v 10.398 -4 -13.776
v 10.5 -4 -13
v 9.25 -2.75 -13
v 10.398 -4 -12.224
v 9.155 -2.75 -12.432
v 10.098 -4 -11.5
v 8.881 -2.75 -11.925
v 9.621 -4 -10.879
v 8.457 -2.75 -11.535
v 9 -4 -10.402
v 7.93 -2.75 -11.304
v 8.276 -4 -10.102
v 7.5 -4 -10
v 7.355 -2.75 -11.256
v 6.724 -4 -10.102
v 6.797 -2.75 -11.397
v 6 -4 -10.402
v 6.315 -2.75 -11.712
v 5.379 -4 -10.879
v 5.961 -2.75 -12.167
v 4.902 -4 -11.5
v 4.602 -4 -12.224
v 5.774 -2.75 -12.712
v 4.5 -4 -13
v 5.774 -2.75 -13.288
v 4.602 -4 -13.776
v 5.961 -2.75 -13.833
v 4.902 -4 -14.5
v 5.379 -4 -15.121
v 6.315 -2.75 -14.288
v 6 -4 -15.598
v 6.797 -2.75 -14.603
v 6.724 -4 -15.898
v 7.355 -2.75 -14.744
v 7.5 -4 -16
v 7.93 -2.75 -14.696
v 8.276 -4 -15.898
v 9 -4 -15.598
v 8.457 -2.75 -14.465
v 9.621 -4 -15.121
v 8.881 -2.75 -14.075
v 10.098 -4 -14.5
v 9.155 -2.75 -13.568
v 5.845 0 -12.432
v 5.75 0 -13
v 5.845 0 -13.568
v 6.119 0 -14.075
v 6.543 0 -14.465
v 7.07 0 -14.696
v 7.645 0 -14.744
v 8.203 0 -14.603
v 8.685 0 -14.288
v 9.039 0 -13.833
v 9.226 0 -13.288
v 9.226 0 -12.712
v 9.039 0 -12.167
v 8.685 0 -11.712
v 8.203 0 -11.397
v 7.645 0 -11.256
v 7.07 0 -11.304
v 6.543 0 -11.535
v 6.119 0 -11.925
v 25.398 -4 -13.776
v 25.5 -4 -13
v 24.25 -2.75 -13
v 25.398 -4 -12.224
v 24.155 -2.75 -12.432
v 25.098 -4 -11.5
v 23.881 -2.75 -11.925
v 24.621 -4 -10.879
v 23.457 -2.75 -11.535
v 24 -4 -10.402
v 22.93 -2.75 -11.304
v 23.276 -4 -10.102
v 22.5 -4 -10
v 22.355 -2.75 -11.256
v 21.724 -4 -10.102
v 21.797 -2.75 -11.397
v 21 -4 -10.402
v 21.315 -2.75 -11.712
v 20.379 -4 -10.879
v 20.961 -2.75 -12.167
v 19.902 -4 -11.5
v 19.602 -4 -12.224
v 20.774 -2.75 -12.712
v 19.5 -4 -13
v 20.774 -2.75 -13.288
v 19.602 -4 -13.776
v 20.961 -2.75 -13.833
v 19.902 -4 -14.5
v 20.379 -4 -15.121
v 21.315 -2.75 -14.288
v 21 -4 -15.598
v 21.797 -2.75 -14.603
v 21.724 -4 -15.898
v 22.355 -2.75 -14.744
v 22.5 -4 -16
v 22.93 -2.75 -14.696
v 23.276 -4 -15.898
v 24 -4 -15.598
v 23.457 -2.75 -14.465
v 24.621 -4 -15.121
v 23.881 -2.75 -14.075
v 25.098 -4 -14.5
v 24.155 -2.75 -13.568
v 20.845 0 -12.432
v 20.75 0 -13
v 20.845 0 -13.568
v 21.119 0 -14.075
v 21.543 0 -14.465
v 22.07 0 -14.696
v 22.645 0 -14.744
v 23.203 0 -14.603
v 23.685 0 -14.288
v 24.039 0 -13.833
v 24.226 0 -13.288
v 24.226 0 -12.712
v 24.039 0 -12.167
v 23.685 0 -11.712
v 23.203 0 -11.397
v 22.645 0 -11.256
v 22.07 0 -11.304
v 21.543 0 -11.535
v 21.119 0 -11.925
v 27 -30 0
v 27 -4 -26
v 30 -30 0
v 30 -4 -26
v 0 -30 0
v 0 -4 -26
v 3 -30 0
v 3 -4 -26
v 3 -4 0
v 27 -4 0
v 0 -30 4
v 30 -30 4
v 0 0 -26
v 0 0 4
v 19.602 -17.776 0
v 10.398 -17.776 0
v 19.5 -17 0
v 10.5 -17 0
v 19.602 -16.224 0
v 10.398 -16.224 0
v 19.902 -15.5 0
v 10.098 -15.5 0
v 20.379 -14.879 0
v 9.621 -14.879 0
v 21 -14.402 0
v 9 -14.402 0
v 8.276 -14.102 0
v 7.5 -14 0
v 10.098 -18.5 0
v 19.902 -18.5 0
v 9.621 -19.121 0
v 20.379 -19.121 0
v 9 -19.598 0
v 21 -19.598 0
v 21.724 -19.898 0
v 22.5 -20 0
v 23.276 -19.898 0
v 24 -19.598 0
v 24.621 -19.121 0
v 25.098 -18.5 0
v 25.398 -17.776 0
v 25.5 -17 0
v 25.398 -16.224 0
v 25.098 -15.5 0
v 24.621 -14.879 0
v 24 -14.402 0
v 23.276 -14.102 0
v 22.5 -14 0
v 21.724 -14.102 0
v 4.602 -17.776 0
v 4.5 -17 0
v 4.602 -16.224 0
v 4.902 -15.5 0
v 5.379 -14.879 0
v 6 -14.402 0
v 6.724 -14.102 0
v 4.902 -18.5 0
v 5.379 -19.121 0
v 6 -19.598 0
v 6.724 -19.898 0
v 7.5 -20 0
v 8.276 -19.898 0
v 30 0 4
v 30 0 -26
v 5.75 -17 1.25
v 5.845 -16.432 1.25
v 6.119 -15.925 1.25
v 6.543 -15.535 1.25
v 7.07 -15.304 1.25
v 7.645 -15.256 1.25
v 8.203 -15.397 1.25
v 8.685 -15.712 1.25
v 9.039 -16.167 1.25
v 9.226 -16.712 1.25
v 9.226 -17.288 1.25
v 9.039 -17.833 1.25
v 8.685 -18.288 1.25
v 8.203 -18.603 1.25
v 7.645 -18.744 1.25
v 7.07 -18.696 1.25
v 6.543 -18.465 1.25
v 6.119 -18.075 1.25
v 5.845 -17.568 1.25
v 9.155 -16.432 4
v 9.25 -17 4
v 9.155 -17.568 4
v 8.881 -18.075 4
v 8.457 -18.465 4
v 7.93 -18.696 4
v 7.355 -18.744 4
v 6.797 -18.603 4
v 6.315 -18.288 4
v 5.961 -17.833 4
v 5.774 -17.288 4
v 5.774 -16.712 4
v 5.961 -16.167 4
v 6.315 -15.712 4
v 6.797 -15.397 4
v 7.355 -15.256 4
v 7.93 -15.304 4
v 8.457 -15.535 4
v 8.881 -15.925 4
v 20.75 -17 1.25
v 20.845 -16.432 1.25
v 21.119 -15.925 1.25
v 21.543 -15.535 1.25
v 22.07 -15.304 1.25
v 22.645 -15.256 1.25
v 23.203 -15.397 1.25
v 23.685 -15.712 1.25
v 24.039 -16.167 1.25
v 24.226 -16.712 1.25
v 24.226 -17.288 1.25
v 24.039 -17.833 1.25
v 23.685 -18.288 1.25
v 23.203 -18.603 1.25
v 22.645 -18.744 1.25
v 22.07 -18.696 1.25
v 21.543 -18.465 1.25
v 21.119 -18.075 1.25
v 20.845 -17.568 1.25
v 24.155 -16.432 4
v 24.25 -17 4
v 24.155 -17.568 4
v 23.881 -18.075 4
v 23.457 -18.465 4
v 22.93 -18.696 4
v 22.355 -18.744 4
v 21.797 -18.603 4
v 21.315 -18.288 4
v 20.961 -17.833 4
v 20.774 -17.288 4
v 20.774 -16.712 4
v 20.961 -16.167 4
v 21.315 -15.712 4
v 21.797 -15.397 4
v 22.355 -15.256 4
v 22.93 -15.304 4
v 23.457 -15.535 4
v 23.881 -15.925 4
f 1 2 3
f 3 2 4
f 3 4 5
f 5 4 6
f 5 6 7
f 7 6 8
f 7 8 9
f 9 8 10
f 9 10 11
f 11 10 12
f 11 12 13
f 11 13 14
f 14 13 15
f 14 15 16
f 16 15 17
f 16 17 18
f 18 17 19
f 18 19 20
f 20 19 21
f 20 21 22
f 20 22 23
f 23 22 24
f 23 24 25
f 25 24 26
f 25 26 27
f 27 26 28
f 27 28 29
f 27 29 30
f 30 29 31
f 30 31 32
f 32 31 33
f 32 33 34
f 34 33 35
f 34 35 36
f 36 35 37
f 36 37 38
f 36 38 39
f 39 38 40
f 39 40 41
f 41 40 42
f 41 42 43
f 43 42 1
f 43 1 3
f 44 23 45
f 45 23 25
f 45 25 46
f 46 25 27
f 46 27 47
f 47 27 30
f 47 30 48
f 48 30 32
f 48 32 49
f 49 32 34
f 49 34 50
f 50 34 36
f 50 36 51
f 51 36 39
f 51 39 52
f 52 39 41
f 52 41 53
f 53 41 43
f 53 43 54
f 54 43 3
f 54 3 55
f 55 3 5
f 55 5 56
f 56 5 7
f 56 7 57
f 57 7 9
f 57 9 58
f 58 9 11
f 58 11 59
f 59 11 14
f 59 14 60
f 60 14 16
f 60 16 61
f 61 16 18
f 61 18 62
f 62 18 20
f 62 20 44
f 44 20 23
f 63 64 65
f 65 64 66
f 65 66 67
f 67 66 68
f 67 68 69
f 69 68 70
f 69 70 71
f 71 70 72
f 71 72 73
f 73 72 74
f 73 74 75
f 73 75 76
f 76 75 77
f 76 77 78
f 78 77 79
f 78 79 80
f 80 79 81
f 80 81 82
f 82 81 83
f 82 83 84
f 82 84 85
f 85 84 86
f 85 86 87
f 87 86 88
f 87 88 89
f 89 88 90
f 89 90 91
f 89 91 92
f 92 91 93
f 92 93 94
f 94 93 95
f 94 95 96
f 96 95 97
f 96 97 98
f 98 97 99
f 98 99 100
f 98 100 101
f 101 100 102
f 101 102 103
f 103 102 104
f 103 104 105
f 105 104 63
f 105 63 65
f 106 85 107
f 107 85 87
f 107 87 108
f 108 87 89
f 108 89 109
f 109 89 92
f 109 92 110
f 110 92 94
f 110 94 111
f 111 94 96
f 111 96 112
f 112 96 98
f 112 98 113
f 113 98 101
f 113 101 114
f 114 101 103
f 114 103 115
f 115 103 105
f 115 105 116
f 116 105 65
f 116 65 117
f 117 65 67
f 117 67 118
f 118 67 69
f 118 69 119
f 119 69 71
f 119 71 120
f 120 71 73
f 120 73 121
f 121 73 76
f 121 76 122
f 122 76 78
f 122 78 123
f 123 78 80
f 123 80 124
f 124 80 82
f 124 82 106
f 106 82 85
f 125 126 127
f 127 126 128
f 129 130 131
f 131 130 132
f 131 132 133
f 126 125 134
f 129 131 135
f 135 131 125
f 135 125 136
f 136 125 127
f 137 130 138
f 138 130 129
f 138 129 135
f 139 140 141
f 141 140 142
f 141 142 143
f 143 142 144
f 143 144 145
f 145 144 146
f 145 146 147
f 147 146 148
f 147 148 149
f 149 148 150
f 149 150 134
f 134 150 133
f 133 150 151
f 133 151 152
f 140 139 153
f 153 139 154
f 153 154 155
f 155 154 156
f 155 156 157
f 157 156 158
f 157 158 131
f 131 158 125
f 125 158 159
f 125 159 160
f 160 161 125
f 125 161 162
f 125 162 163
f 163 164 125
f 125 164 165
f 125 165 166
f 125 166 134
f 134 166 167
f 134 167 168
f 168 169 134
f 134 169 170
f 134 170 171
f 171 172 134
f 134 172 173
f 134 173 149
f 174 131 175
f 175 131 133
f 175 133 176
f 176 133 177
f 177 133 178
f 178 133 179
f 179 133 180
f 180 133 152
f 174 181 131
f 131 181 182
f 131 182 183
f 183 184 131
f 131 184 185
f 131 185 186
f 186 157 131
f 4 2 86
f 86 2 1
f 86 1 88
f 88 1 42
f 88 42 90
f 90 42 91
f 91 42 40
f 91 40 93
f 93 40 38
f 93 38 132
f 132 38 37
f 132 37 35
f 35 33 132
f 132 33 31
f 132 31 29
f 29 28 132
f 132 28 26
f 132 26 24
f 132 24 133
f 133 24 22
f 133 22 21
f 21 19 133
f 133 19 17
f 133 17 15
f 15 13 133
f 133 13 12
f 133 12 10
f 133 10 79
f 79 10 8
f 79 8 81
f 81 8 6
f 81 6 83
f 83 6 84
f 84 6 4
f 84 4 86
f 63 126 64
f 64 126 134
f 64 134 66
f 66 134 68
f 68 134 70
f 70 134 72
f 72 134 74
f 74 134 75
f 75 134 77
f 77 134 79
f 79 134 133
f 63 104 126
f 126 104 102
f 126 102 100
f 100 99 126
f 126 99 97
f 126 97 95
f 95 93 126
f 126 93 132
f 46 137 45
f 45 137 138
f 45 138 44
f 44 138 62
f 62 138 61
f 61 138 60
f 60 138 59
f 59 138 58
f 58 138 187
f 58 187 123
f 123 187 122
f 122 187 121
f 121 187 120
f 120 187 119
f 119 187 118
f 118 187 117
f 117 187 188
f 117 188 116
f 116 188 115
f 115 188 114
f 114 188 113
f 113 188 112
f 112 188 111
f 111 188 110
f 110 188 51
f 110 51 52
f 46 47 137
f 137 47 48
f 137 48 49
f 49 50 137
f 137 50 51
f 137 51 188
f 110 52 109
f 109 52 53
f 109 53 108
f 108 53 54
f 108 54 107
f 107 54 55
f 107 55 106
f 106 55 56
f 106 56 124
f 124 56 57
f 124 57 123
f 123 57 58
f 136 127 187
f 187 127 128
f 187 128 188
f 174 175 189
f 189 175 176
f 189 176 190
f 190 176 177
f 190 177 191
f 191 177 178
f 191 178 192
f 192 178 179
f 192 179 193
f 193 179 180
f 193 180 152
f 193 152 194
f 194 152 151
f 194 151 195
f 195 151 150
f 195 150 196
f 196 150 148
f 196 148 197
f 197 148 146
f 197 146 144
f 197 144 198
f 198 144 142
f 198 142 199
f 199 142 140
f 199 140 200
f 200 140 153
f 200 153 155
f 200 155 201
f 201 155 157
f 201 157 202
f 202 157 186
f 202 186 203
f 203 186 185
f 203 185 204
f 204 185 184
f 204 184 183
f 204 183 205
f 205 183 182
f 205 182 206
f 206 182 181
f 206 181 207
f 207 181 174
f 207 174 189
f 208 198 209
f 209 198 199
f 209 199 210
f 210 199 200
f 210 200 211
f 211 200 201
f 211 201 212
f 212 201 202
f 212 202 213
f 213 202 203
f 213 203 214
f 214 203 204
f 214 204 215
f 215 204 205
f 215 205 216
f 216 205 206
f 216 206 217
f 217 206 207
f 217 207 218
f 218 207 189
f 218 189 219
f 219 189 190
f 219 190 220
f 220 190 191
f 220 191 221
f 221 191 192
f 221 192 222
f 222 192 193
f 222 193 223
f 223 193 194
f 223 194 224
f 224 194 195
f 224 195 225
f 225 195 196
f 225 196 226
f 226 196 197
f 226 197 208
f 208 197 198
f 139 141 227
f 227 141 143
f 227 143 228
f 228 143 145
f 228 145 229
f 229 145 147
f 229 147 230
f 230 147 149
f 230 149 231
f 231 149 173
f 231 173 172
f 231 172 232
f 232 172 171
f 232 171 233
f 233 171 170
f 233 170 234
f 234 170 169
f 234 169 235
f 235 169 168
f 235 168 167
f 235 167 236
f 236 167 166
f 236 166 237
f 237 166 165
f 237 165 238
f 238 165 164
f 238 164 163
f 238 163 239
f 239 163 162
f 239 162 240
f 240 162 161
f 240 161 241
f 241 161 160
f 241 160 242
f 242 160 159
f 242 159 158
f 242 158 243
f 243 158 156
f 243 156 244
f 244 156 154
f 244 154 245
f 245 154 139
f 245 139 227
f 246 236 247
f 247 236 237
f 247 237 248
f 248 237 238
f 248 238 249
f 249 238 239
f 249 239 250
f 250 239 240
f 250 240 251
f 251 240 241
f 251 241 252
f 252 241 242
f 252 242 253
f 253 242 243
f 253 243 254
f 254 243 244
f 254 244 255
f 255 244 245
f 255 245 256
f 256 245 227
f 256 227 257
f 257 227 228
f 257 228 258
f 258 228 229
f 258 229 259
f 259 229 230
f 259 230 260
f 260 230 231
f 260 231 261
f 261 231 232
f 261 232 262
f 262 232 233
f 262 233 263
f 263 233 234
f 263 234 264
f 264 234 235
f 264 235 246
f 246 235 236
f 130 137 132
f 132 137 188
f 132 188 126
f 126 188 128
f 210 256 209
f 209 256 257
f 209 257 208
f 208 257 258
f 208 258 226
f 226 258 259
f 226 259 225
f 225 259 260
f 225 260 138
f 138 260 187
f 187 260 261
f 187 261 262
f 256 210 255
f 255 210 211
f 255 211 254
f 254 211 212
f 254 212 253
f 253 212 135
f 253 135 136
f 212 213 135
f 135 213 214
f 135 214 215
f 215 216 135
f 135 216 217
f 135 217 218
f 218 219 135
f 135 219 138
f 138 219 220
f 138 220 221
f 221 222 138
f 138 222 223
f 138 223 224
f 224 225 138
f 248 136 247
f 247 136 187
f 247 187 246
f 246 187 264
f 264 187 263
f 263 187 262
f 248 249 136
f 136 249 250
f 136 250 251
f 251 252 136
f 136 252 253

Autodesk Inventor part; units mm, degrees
ref_plane "YZ Plane" through (0, 0, 0) normal (1, 0, 0) x (0, 1, 0)
ref_plane "XZ Plane" through (0, 0, 0) normal (0, 1, 0) x (-1, 0, 0)
ref_plane "XY Plane" through (0, 0, 0) normal (0, 0, 1) x (1, 0, 0)
sketch "Boceto1" plane through (0, 0, 0) normal (0, 0, 1) x (1, 0, 0)
  line L0 (0, 0) -> (30, 0)
  line L1 (30, 0) -> (30, -30)
  line L2 (30, -30) -> (0, -30)
  line L3 (0, -30) -> (0, 0)
  dimension "d0" = 30
  dimension "d1" = 30
extrude "Extrusión1" add sketch "Boceto1" along normal blind 4
sketch "Boceto2" plane through (0, 0, 0) normal (0, 1, 0) x (1, 0, 0)
  line L0 (30, -4) -> (0, -4) projected
  line L1 (0, -4) -> (30, -4)
  line L2 (30, -4) -> (30, 26)
  line L3 (30, 26) -> (0, 26)
  line L4 (0, 26) -> (0, -4)
  point P0 (0, 0)
  dimension "d4" = 30
extrude "Extrusión2" add sketch "Boceto2" against normal blind 4
sketch "Boceto3" plane through (0, 0, 0) normal (0, 0, -1) x (-1, 0, 0)
  line L0 (0, -4) -> (-30, -4) projected
  line L1 (-30, -30) -> (-30, -4) projected
  line L2 (0, -30) -> (-30, -30) projected
  line L3 (0, -4) -> (0, -30) projected
  line L4 (0, -30) -> (-30, -30) projected
  line L5 (-15, -30) -> (-15, -4)
  line L6 (0, -4) -> (0, -30) projected
  line L7 (0, -17) -> (-30, -17)
  line L8 (-30, -17) -> (-22.5, -17)
  circle A0 centre (-22.5, -17) radius 3
  line L9 (0, -17) -> (-7.5, -17)
  circle A1 centre (-7.5, -17) radius 3
  point P0 (0, 0)
  dimension "d7" = 7.5
  dimension "d8" = 6
  dimension "d9" = 7.5
  dimension "d10" = 6
hole "Agujero1" at (22.5, -17, 0) at (7.5, -17, 0) direction (0, 0, 1) diameter 3.5 end through all countersink diameter 6 countersink angle 90
sketch "Boceto4" plane through (0, 0, 0) normal (0, 0, -1) x (-1, 0, 0)
  line L0 (0, -30) -> (-30, -30) projected
  line L1 (0, 0) -> (-3, 0)
  line L2 (-3, 0) -> (-3, -30)
  line L3 (-3, -30) -> (0, -30)
  line L4 (0, -30) -> (0, 0)
  line L5 (-30, -30) -> (-27, -30)
  line L6 (-27, -30) -> (-27, 0)
  line L7 (-27, 0) -> (-30, 0)
  line L8 (-30, 0) -> (-30, -30)
  dimension "d18" = 3
  dimension "d19" = 3
extrude "Extrusión3" add sketch "Boceto4" along normal up to surface (26 mm away)
sketch "Boceto5" plane through (30, -30, 4) normal (1, 0, 0) x (0, 0, -1)
  line L0 (30, 26) -> (4, 0)
  line L1 (30, 30) -> (0, 30) projected
  line L2 (0, 0) -> (0, 30) projected
  line L3 (30, 0) -> (0, 0) projected
  line L4 (30, 30) -> (30, 0) projected
  point P0 (4, 30)
extrude "Extrusión4" cut sketch "Boceto5" against normal through all contours L4 L3 L0
sketch "Boceto8" plane through (0, -4, 0) normal (0, -1, 0) x (1, 0, 0)
  line L0 (3, 0) -> (3, -26) projected
  line L1 (3, -26) -> (27, -26) projected
  line L2 (27, -26) -> (27, 0) projected
  line L3 (3, 0) -> (27, 0) projected
  line L4 (25.5, 0) -> (19.5, 0) projected
  line L5 (10.5, 0) -> (4.5, 0) projected
  line L6 (22.5, 0) -> (22.5, -26)
  line L7 (7.5, 0) -> (7.5, -26)
  line L8 (3, -26) -> (27, -26) projected
  line L9 (27, -26) -> (27, 0) projected
  line L10 (27, -13) -> (3, -13)
  circle A0 centre (22.5, -13) radius 1.75
  circle A1 centre (7.5, -13) radius 1.75
  point P0 (0, 0)
  dimension "d25" = 3.5
  dimension "d26" = 3.5
hole "Agujero2" at (22.5, -4, -13) at (7.5, -4, -13) direction (0, 1, 0) diameter 3.5 end through all countersink diameter 6 countersink angle 90
properties part number "Union"
